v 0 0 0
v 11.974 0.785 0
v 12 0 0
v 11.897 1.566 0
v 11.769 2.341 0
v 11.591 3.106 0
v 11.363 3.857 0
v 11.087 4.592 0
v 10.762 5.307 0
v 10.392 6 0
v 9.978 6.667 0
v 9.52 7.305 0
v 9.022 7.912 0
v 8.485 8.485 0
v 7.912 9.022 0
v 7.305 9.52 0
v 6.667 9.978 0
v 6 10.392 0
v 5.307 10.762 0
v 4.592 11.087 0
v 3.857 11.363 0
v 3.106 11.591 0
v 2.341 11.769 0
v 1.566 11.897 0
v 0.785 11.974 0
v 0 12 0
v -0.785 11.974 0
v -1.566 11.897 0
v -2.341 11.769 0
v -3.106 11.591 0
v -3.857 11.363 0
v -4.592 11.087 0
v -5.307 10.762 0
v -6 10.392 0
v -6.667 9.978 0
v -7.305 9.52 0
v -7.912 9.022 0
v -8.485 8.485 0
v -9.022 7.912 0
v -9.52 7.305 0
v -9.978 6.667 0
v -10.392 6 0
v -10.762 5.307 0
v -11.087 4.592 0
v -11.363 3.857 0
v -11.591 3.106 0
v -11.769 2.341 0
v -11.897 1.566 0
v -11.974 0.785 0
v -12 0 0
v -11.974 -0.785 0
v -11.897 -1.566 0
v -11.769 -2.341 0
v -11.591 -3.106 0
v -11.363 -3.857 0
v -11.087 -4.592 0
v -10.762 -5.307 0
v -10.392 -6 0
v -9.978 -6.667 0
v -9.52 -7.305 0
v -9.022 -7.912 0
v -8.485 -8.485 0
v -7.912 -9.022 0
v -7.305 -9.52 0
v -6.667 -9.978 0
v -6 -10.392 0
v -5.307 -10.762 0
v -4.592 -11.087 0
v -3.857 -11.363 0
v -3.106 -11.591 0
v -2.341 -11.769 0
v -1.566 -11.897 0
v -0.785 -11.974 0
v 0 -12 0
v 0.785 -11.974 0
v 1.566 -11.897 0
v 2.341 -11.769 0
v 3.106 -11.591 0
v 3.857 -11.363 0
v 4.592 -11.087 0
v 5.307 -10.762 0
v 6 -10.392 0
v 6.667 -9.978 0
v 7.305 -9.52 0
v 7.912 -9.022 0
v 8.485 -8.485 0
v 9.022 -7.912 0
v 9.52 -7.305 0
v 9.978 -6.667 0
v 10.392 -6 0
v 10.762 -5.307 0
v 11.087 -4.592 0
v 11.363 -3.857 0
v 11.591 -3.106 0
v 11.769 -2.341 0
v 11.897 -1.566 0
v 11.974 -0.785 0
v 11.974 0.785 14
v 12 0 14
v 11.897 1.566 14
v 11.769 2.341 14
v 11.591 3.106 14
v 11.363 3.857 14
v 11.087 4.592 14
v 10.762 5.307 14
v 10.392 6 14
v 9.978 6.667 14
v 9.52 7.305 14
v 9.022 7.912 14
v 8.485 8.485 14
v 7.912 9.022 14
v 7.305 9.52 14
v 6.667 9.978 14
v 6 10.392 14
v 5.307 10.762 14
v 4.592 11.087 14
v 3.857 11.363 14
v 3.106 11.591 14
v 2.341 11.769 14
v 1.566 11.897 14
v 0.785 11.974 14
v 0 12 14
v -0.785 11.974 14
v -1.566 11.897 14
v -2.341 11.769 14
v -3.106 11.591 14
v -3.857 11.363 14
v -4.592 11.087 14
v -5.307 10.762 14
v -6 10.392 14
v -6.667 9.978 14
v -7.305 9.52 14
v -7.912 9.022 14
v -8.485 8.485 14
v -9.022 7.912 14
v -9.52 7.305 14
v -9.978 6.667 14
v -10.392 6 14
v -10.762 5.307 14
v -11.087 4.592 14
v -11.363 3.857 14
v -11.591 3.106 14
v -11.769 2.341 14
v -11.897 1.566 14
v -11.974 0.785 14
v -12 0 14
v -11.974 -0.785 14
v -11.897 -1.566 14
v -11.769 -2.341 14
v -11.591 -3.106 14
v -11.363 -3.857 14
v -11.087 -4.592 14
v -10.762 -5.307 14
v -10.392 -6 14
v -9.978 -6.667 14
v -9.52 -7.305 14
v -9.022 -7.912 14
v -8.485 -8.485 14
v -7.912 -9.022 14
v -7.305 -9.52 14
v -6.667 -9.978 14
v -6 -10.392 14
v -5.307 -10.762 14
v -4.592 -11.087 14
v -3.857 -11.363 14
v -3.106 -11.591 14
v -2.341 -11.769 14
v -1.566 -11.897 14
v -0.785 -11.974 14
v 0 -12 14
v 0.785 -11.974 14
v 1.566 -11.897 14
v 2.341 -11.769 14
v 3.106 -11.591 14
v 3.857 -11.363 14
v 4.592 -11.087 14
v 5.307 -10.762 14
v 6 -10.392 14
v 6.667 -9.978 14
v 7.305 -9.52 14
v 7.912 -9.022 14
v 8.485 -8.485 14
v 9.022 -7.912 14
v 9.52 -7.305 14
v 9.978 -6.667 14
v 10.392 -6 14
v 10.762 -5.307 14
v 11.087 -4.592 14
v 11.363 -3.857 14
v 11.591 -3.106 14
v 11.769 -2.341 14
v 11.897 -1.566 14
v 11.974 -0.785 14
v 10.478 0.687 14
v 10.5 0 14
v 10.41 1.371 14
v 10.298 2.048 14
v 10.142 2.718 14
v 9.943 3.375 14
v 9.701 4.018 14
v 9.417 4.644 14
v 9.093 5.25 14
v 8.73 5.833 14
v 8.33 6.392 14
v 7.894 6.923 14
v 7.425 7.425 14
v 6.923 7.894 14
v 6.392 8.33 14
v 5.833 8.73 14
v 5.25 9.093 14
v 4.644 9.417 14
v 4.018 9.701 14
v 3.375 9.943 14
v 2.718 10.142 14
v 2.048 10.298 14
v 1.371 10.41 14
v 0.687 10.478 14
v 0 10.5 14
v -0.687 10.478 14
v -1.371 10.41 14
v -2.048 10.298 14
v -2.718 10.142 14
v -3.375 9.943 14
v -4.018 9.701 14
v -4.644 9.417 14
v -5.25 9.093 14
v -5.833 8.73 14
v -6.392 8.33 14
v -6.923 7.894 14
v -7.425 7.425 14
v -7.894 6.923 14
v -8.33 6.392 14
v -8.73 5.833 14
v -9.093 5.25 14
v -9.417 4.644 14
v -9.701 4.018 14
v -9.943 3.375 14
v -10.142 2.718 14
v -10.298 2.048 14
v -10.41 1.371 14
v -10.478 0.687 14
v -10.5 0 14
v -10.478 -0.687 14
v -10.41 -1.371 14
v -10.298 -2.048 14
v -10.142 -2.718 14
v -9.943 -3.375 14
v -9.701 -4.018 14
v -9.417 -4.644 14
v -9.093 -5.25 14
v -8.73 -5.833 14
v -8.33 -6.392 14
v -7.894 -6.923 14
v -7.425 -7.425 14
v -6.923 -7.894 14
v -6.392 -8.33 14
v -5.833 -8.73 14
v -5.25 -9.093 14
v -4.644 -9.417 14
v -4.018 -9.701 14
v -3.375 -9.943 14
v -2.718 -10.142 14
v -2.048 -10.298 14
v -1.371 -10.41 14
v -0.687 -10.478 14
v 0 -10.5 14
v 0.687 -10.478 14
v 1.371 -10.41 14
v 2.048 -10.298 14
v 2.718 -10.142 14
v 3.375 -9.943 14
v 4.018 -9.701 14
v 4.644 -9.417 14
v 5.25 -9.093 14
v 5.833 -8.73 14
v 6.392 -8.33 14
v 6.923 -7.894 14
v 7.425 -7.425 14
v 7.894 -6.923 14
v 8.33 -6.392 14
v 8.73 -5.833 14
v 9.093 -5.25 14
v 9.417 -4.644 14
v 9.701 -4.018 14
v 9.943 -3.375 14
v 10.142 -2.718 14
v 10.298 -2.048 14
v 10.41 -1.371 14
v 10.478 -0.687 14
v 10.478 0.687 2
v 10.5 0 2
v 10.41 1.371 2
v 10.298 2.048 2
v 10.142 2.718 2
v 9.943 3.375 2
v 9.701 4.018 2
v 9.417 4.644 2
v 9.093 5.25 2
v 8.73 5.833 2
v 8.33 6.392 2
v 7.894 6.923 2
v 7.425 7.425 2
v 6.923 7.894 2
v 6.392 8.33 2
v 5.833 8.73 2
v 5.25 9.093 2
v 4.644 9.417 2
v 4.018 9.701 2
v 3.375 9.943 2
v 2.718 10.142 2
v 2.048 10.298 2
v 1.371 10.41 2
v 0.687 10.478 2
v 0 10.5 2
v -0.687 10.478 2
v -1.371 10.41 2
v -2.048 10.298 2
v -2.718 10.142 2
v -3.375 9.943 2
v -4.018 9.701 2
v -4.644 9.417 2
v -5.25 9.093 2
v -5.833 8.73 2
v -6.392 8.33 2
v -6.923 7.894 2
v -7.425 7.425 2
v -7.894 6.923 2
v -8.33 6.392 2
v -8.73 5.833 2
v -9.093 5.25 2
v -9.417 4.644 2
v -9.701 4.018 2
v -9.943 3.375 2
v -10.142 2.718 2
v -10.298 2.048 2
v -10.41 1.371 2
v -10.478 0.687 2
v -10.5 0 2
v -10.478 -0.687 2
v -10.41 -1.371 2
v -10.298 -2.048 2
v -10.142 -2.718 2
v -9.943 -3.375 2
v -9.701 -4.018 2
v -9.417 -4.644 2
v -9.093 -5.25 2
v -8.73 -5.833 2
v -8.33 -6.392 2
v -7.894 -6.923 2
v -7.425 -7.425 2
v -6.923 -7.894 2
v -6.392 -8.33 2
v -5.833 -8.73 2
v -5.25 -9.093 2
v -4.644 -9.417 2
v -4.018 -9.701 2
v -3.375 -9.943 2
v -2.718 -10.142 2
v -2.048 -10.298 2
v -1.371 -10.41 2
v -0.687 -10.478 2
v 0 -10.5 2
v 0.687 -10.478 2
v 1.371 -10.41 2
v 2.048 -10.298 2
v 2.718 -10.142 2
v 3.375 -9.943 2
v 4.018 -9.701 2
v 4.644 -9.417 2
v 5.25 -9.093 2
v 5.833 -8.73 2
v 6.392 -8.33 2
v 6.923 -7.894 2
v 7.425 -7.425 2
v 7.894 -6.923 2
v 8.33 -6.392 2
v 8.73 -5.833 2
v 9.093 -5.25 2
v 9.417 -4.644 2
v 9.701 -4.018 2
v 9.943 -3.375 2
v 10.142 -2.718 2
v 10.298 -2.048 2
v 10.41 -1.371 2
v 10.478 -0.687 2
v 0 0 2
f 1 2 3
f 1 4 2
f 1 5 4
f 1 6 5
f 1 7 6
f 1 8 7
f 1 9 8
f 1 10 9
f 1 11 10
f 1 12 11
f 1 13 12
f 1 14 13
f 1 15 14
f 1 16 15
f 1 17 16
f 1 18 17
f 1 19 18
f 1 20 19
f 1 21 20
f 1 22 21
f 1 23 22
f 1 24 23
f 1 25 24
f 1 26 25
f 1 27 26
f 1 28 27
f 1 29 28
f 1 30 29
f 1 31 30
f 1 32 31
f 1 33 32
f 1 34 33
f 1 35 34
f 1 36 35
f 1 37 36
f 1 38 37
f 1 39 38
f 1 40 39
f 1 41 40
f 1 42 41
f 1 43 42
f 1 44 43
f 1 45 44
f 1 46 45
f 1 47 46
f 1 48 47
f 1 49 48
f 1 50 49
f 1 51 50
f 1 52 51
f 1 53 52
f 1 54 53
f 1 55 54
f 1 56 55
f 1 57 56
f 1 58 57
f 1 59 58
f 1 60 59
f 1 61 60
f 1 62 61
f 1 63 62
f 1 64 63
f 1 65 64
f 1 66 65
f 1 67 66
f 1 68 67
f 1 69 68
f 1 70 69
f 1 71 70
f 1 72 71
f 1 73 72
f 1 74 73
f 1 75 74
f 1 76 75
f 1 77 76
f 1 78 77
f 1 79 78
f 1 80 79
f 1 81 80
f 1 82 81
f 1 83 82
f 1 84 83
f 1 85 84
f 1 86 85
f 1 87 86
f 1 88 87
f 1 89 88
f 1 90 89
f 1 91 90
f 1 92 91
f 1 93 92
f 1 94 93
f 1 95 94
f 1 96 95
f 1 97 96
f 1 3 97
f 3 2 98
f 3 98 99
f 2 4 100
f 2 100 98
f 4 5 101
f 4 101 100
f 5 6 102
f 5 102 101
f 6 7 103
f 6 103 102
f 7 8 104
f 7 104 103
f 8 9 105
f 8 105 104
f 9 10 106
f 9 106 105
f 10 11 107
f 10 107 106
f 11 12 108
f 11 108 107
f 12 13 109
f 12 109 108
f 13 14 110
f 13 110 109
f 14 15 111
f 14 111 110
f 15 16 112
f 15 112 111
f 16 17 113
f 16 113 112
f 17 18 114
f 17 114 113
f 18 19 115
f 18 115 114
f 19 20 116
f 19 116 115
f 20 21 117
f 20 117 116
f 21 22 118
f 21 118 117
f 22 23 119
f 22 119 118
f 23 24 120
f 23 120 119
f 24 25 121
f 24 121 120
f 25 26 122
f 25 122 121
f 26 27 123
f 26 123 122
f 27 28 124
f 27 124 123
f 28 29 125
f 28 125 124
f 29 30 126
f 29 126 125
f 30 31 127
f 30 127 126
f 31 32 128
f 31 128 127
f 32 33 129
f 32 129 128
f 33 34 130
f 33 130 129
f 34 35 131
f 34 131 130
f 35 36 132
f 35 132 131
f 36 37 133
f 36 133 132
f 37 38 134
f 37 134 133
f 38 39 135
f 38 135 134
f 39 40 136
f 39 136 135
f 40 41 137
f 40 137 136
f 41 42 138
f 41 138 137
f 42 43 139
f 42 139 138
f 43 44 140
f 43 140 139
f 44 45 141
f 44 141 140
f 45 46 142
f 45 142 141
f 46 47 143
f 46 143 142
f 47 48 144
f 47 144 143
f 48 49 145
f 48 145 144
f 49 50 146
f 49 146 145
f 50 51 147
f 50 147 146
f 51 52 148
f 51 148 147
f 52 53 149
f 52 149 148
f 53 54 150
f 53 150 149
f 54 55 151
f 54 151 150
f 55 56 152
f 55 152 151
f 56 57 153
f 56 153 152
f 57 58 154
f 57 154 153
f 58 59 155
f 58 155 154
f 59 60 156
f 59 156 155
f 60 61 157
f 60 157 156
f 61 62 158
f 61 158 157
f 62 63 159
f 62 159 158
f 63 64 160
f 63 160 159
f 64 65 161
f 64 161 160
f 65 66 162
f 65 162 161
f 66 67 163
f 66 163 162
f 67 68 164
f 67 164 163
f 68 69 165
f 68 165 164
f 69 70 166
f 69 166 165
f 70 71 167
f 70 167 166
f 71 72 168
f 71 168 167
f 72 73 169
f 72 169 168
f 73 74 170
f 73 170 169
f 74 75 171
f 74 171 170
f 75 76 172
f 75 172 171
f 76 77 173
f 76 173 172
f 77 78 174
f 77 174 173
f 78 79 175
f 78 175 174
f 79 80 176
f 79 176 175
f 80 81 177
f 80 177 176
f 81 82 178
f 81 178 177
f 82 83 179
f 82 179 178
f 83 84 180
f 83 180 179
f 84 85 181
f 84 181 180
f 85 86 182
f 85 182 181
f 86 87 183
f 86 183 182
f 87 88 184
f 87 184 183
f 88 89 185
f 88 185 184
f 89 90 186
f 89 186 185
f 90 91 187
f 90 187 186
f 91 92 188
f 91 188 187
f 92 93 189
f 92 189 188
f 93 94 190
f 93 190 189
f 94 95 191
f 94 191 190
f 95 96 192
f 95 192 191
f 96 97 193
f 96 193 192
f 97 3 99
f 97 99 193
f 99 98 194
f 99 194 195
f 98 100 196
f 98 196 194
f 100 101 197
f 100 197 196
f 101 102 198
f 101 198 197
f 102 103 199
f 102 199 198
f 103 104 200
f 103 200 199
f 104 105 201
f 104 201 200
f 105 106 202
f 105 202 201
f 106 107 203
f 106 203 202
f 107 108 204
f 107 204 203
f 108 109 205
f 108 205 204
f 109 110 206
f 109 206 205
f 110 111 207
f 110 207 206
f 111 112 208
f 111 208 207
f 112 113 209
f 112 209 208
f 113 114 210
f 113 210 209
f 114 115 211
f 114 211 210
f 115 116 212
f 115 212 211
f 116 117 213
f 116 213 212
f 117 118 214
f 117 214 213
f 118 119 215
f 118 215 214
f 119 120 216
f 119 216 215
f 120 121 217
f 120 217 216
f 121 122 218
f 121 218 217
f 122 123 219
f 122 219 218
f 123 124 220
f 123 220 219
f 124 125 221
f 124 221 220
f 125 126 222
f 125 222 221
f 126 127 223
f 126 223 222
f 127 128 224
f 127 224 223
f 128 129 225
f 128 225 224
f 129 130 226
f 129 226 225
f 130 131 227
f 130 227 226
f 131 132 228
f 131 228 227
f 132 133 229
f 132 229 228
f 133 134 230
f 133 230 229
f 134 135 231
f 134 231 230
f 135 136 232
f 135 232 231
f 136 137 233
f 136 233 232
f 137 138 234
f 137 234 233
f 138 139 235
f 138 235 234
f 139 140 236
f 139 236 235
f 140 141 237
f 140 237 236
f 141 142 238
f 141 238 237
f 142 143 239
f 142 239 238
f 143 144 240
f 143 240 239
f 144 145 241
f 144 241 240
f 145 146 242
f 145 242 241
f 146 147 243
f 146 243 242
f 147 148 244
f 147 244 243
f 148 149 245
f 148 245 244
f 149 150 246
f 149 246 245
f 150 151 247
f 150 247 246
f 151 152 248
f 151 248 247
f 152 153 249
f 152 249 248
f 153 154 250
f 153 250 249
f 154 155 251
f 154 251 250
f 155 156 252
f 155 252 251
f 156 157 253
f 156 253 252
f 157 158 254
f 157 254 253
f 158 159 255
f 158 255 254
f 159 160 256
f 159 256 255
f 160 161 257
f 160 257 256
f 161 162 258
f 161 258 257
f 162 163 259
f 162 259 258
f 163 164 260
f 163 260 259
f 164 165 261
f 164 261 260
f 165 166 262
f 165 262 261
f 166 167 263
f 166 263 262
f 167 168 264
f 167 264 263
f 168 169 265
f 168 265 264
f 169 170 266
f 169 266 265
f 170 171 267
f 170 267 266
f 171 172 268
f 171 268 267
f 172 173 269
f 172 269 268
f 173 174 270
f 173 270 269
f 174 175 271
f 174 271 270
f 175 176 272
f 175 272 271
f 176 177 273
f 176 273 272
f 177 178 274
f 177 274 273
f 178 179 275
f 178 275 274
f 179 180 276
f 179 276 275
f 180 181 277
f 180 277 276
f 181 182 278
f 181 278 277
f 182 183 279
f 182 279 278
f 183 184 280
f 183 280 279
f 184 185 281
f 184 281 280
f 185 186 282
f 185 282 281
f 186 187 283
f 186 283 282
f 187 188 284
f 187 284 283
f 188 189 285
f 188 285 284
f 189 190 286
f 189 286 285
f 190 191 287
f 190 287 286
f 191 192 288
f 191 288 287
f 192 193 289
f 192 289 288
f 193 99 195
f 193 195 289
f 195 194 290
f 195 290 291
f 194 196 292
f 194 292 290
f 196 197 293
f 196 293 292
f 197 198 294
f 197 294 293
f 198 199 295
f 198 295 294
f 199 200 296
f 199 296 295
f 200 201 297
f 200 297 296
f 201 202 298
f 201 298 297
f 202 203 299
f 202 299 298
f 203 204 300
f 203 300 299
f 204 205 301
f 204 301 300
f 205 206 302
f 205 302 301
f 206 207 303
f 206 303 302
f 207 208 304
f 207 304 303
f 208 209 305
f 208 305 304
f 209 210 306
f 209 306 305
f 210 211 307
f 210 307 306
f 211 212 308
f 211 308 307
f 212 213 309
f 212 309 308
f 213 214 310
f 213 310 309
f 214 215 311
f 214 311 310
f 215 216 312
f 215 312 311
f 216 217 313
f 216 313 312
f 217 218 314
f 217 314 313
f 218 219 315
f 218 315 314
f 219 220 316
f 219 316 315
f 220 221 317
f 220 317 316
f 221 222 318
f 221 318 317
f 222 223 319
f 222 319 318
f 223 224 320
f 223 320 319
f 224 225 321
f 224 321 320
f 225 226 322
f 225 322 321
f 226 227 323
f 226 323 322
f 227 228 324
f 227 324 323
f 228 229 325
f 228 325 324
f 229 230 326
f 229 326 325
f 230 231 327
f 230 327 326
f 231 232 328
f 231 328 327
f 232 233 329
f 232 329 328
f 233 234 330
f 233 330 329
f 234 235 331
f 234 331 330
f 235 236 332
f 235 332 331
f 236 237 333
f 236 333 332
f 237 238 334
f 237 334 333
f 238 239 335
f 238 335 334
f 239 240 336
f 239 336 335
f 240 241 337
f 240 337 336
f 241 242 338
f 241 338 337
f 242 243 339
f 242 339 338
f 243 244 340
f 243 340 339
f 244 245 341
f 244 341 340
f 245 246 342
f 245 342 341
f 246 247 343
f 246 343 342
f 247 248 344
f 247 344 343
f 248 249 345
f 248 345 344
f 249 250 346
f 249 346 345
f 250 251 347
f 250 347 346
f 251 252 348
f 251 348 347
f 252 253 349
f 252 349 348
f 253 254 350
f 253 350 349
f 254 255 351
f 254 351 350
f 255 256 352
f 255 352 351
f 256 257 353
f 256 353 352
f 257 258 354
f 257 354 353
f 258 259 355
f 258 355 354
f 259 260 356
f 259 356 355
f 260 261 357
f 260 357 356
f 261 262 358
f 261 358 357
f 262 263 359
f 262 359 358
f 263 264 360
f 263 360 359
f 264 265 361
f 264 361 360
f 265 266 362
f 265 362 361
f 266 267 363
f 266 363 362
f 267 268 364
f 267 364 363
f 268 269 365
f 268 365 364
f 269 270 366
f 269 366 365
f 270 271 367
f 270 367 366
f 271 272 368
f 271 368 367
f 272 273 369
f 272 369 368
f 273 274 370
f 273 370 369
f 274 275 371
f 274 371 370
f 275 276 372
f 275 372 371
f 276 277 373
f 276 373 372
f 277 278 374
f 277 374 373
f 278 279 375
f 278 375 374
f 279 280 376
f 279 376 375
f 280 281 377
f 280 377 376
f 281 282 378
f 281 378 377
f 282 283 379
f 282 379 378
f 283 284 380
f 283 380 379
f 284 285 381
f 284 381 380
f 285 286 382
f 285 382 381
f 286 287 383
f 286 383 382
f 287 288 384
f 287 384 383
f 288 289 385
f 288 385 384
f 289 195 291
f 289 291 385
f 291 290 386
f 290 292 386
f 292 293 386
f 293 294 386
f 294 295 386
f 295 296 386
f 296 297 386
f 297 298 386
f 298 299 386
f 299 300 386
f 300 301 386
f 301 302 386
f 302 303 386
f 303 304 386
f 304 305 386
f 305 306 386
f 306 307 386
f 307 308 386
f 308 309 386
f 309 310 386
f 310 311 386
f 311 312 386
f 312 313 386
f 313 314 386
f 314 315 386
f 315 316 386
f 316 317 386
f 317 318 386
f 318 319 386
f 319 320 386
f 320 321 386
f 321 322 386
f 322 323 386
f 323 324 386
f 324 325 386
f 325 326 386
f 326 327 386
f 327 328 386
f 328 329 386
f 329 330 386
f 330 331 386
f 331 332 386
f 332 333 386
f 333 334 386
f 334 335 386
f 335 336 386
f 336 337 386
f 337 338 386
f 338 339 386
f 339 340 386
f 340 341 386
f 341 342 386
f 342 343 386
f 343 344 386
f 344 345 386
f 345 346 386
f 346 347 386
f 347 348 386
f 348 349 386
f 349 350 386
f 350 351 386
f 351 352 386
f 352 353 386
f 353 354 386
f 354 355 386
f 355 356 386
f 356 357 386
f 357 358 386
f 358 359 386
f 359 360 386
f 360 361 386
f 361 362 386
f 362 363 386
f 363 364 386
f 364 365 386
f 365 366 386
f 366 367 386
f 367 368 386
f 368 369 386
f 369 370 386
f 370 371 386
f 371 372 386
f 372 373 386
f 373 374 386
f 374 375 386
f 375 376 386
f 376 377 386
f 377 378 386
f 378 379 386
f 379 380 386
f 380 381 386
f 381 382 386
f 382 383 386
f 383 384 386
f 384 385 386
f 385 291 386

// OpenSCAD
// Original MechIntel educational model. CC0-1.0. Units: mm.
// Not a standardized or load-rated component.
$fn=96;
// Section points: [radius, height], mm. Edit to change the profile.
section=[[0, 0], [12, 0], [12, 14], [10.5, 14], [10.5, 2], [0, 2]];
rotate_extrude($fn=96) polygon(points=section);
